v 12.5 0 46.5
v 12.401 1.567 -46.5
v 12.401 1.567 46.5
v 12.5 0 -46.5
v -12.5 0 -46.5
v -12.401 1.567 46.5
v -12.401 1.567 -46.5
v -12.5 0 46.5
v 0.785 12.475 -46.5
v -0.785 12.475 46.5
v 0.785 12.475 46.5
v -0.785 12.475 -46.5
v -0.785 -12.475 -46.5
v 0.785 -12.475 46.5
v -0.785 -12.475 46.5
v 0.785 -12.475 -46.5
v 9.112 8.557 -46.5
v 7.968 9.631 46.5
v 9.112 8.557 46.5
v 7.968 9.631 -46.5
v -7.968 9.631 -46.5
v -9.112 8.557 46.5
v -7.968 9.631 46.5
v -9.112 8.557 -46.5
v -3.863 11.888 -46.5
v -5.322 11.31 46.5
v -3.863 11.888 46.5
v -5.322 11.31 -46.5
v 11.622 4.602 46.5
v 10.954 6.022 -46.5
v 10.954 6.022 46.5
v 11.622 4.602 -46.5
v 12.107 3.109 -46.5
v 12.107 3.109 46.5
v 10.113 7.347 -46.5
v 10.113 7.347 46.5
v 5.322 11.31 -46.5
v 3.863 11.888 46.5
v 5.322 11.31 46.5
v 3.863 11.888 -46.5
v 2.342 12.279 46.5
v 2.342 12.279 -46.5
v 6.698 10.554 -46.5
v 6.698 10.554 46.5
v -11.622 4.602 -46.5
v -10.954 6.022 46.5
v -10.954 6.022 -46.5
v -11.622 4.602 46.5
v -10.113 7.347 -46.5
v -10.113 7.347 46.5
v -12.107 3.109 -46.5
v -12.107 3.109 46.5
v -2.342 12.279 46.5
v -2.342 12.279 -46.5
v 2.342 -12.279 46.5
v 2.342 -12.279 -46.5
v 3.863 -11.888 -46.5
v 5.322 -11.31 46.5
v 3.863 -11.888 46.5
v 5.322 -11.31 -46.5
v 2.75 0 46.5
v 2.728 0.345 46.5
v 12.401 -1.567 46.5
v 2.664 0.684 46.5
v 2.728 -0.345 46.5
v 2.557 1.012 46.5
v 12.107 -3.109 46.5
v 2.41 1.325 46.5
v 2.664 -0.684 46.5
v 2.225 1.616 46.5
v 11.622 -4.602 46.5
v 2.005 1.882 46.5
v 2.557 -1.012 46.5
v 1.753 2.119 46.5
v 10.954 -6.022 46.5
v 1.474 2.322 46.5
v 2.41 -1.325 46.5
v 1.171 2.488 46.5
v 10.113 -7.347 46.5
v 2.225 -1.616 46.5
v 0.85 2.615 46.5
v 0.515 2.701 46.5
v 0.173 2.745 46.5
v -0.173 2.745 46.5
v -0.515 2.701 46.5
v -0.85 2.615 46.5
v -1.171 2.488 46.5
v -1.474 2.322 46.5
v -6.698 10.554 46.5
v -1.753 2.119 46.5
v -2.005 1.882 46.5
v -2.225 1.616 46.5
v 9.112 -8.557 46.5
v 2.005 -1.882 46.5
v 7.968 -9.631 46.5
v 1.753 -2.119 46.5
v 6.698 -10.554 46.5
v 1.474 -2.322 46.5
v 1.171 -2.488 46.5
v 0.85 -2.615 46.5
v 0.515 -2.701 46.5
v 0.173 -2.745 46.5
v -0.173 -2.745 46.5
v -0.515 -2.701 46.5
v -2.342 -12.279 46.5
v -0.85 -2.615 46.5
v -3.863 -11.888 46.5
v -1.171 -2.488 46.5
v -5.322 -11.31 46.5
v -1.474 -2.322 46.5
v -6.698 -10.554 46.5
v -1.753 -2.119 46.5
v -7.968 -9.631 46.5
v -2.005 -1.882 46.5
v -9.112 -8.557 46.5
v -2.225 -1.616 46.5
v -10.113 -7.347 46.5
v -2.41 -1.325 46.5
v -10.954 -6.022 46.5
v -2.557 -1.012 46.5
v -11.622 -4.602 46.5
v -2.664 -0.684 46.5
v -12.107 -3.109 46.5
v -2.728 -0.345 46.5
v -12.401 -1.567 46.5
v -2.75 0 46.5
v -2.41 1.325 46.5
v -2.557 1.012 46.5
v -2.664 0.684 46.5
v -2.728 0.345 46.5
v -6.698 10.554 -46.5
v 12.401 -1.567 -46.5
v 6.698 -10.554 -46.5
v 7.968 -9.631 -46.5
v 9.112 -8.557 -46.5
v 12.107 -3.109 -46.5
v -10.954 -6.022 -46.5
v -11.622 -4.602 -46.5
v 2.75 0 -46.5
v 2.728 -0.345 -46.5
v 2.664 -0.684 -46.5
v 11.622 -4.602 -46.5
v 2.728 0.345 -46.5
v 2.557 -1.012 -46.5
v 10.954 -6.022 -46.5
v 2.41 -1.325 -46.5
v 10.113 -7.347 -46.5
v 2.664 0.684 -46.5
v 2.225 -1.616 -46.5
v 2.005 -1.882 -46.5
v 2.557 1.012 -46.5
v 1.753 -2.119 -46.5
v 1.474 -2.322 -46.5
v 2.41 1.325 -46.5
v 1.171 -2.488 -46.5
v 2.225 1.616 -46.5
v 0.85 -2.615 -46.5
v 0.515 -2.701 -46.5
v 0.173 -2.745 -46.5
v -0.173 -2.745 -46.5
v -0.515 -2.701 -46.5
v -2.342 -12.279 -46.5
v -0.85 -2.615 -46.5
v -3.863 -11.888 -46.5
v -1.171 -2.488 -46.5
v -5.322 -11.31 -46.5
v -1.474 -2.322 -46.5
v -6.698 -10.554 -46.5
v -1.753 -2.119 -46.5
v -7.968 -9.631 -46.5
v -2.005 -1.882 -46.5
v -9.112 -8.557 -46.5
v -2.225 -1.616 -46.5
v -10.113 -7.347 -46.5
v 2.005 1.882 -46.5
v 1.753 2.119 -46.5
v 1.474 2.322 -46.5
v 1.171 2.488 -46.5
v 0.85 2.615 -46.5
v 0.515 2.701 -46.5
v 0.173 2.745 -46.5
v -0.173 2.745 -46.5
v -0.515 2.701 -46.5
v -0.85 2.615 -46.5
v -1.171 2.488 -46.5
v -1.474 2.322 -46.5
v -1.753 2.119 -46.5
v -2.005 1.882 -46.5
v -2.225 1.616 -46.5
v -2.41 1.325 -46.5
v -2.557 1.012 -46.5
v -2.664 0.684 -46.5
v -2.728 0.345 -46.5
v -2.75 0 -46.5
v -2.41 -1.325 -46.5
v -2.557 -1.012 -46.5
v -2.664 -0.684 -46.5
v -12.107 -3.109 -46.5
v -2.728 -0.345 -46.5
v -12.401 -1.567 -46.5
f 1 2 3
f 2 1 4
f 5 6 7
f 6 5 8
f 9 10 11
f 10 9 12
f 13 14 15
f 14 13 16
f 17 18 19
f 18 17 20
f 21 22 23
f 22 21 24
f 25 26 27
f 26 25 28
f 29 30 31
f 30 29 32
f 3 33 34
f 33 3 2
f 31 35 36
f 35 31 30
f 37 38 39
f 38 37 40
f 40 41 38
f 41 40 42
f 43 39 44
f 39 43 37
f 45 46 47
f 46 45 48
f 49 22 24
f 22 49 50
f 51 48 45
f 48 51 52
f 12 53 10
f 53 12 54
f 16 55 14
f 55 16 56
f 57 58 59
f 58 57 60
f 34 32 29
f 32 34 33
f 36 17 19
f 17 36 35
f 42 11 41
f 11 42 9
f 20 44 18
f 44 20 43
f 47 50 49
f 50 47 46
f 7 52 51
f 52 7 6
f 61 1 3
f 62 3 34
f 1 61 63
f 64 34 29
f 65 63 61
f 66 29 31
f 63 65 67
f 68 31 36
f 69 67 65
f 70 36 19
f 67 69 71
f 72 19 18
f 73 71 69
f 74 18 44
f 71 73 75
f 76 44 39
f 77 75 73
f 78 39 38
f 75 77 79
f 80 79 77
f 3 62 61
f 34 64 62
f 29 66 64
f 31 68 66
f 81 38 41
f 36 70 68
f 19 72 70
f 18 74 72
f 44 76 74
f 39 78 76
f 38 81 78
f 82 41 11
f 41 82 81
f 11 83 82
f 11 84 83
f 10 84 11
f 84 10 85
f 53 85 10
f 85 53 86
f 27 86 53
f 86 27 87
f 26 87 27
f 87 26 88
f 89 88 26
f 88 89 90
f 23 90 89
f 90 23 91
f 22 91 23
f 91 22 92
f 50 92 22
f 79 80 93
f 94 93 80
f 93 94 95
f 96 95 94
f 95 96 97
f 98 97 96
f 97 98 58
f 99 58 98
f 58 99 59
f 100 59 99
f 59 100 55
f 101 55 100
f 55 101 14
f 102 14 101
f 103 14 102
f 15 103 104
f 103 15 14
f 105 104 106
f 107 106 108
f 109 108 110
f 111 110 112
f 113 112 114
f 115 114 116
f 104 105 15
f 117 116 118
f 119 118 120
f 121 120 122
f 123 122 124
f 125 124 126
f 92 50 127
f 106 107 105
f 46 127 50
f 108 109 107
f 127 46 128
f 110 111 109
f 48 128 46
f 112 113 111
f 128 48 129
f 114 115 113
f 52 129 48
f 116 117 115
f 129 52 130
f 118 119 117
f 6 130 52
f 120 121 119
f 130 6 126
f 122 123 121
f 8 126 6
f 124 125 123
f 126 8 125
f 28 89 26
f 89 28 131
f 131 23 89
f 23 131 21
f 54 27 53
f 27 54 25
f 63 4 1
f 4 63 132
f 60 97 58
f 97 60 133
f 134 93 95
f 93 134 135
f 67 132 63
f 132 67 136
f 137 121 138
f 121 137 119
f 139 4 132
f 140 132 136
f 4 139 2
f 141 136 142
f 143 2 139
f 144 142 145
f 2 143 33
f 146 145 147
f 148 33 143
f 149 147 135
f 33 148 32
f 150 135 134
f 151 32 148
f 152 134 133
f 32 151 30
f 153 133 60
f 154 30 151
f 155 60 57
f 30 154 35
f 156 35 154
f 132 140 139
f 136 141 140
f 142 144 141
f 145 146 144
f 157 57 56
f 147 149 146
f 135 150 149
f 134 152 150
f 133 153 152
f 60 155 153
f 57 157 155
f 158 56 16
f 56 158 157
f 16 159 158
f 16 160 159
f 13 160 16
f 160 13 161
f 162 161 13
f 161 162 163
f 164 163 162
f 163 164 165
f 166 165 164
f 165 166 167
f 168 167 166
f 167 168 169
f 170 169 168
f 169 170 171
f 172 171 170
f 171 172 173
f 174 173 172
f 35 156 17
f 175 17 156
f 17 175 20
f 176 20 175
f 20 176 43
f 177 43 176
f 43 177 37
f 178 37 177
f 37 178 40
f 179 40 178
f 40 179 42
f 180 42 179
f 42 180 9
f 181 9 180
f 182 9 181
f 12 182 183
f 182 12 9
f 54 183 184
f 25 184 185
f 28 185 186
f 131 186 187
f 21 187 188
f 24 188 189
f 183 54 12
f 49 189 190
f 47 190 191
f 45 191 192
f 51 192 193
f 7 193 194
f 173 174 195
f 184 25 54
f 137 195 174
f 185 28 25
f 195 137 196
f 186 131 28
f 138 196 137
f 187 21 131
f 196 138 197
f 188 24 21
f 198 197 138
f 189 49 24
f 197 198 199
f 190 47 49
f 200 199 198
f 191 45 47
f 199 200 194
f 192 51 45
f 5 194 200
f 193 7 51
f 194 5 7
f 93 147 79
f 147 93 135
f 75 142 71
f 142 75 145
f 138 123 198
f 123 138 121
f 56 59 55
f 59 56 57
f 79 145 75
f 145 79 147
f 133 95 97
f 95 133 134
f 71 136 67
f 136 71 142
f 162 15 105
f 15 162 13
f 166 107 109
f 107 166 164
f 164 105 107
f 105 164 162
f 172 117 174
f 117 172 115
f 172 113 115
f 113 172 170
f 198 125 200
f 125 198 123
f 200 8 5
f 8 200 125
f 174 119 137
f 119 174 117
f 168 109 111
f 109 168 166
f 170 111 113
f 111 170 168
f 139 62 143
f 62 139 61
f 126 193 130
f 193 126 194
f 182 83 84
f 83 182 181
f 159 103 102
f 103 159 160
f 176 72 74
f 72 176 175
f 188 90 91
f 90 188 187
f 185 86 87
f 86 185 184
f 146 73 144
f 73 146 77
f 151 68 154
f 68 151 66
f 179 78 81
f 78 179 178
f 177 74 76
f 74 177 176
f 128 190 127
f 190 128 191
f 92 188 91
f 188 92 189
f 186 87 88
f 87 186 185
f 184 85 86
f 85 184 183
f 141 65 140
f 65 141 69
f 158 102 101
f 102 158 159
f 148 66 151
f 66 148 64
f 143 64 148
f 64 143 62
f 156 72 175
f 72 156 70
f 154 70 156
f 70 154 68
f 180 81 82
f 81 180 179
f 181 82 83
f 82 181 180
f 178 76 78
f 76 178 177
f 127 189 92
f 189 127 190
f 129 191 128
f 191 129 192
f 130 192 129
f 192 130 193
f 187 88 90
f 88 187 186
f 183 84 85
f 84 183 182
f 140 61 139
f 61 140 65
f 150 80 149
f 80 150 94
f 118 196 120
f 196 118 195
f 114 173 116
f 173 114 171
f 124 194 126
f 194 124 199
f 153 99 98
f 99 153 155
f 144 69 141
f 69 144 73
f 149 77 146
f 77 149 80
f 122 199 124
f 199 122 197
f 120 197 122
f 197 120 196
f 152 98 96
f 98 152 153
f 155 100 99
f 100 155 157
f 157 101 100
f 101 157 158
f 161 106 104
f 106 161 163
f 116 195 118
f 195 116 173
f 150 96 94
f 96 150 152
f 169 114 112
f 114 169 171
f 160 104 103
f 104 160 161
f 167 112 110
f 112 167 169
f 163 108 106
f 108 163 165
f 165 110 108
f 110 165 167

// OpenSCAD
$fn = 50;


difference() {
	union() {
		translate(v = [0, 0, -46.5000000000]) {
			cylinder(h = 93, r = 12.5000000000);
		}
	}
	union() {
		translate(v = [0, 0, -100.0000000000]) {
			cylinder(h = 200, r = 2.7500000000);
		}
	}
}
